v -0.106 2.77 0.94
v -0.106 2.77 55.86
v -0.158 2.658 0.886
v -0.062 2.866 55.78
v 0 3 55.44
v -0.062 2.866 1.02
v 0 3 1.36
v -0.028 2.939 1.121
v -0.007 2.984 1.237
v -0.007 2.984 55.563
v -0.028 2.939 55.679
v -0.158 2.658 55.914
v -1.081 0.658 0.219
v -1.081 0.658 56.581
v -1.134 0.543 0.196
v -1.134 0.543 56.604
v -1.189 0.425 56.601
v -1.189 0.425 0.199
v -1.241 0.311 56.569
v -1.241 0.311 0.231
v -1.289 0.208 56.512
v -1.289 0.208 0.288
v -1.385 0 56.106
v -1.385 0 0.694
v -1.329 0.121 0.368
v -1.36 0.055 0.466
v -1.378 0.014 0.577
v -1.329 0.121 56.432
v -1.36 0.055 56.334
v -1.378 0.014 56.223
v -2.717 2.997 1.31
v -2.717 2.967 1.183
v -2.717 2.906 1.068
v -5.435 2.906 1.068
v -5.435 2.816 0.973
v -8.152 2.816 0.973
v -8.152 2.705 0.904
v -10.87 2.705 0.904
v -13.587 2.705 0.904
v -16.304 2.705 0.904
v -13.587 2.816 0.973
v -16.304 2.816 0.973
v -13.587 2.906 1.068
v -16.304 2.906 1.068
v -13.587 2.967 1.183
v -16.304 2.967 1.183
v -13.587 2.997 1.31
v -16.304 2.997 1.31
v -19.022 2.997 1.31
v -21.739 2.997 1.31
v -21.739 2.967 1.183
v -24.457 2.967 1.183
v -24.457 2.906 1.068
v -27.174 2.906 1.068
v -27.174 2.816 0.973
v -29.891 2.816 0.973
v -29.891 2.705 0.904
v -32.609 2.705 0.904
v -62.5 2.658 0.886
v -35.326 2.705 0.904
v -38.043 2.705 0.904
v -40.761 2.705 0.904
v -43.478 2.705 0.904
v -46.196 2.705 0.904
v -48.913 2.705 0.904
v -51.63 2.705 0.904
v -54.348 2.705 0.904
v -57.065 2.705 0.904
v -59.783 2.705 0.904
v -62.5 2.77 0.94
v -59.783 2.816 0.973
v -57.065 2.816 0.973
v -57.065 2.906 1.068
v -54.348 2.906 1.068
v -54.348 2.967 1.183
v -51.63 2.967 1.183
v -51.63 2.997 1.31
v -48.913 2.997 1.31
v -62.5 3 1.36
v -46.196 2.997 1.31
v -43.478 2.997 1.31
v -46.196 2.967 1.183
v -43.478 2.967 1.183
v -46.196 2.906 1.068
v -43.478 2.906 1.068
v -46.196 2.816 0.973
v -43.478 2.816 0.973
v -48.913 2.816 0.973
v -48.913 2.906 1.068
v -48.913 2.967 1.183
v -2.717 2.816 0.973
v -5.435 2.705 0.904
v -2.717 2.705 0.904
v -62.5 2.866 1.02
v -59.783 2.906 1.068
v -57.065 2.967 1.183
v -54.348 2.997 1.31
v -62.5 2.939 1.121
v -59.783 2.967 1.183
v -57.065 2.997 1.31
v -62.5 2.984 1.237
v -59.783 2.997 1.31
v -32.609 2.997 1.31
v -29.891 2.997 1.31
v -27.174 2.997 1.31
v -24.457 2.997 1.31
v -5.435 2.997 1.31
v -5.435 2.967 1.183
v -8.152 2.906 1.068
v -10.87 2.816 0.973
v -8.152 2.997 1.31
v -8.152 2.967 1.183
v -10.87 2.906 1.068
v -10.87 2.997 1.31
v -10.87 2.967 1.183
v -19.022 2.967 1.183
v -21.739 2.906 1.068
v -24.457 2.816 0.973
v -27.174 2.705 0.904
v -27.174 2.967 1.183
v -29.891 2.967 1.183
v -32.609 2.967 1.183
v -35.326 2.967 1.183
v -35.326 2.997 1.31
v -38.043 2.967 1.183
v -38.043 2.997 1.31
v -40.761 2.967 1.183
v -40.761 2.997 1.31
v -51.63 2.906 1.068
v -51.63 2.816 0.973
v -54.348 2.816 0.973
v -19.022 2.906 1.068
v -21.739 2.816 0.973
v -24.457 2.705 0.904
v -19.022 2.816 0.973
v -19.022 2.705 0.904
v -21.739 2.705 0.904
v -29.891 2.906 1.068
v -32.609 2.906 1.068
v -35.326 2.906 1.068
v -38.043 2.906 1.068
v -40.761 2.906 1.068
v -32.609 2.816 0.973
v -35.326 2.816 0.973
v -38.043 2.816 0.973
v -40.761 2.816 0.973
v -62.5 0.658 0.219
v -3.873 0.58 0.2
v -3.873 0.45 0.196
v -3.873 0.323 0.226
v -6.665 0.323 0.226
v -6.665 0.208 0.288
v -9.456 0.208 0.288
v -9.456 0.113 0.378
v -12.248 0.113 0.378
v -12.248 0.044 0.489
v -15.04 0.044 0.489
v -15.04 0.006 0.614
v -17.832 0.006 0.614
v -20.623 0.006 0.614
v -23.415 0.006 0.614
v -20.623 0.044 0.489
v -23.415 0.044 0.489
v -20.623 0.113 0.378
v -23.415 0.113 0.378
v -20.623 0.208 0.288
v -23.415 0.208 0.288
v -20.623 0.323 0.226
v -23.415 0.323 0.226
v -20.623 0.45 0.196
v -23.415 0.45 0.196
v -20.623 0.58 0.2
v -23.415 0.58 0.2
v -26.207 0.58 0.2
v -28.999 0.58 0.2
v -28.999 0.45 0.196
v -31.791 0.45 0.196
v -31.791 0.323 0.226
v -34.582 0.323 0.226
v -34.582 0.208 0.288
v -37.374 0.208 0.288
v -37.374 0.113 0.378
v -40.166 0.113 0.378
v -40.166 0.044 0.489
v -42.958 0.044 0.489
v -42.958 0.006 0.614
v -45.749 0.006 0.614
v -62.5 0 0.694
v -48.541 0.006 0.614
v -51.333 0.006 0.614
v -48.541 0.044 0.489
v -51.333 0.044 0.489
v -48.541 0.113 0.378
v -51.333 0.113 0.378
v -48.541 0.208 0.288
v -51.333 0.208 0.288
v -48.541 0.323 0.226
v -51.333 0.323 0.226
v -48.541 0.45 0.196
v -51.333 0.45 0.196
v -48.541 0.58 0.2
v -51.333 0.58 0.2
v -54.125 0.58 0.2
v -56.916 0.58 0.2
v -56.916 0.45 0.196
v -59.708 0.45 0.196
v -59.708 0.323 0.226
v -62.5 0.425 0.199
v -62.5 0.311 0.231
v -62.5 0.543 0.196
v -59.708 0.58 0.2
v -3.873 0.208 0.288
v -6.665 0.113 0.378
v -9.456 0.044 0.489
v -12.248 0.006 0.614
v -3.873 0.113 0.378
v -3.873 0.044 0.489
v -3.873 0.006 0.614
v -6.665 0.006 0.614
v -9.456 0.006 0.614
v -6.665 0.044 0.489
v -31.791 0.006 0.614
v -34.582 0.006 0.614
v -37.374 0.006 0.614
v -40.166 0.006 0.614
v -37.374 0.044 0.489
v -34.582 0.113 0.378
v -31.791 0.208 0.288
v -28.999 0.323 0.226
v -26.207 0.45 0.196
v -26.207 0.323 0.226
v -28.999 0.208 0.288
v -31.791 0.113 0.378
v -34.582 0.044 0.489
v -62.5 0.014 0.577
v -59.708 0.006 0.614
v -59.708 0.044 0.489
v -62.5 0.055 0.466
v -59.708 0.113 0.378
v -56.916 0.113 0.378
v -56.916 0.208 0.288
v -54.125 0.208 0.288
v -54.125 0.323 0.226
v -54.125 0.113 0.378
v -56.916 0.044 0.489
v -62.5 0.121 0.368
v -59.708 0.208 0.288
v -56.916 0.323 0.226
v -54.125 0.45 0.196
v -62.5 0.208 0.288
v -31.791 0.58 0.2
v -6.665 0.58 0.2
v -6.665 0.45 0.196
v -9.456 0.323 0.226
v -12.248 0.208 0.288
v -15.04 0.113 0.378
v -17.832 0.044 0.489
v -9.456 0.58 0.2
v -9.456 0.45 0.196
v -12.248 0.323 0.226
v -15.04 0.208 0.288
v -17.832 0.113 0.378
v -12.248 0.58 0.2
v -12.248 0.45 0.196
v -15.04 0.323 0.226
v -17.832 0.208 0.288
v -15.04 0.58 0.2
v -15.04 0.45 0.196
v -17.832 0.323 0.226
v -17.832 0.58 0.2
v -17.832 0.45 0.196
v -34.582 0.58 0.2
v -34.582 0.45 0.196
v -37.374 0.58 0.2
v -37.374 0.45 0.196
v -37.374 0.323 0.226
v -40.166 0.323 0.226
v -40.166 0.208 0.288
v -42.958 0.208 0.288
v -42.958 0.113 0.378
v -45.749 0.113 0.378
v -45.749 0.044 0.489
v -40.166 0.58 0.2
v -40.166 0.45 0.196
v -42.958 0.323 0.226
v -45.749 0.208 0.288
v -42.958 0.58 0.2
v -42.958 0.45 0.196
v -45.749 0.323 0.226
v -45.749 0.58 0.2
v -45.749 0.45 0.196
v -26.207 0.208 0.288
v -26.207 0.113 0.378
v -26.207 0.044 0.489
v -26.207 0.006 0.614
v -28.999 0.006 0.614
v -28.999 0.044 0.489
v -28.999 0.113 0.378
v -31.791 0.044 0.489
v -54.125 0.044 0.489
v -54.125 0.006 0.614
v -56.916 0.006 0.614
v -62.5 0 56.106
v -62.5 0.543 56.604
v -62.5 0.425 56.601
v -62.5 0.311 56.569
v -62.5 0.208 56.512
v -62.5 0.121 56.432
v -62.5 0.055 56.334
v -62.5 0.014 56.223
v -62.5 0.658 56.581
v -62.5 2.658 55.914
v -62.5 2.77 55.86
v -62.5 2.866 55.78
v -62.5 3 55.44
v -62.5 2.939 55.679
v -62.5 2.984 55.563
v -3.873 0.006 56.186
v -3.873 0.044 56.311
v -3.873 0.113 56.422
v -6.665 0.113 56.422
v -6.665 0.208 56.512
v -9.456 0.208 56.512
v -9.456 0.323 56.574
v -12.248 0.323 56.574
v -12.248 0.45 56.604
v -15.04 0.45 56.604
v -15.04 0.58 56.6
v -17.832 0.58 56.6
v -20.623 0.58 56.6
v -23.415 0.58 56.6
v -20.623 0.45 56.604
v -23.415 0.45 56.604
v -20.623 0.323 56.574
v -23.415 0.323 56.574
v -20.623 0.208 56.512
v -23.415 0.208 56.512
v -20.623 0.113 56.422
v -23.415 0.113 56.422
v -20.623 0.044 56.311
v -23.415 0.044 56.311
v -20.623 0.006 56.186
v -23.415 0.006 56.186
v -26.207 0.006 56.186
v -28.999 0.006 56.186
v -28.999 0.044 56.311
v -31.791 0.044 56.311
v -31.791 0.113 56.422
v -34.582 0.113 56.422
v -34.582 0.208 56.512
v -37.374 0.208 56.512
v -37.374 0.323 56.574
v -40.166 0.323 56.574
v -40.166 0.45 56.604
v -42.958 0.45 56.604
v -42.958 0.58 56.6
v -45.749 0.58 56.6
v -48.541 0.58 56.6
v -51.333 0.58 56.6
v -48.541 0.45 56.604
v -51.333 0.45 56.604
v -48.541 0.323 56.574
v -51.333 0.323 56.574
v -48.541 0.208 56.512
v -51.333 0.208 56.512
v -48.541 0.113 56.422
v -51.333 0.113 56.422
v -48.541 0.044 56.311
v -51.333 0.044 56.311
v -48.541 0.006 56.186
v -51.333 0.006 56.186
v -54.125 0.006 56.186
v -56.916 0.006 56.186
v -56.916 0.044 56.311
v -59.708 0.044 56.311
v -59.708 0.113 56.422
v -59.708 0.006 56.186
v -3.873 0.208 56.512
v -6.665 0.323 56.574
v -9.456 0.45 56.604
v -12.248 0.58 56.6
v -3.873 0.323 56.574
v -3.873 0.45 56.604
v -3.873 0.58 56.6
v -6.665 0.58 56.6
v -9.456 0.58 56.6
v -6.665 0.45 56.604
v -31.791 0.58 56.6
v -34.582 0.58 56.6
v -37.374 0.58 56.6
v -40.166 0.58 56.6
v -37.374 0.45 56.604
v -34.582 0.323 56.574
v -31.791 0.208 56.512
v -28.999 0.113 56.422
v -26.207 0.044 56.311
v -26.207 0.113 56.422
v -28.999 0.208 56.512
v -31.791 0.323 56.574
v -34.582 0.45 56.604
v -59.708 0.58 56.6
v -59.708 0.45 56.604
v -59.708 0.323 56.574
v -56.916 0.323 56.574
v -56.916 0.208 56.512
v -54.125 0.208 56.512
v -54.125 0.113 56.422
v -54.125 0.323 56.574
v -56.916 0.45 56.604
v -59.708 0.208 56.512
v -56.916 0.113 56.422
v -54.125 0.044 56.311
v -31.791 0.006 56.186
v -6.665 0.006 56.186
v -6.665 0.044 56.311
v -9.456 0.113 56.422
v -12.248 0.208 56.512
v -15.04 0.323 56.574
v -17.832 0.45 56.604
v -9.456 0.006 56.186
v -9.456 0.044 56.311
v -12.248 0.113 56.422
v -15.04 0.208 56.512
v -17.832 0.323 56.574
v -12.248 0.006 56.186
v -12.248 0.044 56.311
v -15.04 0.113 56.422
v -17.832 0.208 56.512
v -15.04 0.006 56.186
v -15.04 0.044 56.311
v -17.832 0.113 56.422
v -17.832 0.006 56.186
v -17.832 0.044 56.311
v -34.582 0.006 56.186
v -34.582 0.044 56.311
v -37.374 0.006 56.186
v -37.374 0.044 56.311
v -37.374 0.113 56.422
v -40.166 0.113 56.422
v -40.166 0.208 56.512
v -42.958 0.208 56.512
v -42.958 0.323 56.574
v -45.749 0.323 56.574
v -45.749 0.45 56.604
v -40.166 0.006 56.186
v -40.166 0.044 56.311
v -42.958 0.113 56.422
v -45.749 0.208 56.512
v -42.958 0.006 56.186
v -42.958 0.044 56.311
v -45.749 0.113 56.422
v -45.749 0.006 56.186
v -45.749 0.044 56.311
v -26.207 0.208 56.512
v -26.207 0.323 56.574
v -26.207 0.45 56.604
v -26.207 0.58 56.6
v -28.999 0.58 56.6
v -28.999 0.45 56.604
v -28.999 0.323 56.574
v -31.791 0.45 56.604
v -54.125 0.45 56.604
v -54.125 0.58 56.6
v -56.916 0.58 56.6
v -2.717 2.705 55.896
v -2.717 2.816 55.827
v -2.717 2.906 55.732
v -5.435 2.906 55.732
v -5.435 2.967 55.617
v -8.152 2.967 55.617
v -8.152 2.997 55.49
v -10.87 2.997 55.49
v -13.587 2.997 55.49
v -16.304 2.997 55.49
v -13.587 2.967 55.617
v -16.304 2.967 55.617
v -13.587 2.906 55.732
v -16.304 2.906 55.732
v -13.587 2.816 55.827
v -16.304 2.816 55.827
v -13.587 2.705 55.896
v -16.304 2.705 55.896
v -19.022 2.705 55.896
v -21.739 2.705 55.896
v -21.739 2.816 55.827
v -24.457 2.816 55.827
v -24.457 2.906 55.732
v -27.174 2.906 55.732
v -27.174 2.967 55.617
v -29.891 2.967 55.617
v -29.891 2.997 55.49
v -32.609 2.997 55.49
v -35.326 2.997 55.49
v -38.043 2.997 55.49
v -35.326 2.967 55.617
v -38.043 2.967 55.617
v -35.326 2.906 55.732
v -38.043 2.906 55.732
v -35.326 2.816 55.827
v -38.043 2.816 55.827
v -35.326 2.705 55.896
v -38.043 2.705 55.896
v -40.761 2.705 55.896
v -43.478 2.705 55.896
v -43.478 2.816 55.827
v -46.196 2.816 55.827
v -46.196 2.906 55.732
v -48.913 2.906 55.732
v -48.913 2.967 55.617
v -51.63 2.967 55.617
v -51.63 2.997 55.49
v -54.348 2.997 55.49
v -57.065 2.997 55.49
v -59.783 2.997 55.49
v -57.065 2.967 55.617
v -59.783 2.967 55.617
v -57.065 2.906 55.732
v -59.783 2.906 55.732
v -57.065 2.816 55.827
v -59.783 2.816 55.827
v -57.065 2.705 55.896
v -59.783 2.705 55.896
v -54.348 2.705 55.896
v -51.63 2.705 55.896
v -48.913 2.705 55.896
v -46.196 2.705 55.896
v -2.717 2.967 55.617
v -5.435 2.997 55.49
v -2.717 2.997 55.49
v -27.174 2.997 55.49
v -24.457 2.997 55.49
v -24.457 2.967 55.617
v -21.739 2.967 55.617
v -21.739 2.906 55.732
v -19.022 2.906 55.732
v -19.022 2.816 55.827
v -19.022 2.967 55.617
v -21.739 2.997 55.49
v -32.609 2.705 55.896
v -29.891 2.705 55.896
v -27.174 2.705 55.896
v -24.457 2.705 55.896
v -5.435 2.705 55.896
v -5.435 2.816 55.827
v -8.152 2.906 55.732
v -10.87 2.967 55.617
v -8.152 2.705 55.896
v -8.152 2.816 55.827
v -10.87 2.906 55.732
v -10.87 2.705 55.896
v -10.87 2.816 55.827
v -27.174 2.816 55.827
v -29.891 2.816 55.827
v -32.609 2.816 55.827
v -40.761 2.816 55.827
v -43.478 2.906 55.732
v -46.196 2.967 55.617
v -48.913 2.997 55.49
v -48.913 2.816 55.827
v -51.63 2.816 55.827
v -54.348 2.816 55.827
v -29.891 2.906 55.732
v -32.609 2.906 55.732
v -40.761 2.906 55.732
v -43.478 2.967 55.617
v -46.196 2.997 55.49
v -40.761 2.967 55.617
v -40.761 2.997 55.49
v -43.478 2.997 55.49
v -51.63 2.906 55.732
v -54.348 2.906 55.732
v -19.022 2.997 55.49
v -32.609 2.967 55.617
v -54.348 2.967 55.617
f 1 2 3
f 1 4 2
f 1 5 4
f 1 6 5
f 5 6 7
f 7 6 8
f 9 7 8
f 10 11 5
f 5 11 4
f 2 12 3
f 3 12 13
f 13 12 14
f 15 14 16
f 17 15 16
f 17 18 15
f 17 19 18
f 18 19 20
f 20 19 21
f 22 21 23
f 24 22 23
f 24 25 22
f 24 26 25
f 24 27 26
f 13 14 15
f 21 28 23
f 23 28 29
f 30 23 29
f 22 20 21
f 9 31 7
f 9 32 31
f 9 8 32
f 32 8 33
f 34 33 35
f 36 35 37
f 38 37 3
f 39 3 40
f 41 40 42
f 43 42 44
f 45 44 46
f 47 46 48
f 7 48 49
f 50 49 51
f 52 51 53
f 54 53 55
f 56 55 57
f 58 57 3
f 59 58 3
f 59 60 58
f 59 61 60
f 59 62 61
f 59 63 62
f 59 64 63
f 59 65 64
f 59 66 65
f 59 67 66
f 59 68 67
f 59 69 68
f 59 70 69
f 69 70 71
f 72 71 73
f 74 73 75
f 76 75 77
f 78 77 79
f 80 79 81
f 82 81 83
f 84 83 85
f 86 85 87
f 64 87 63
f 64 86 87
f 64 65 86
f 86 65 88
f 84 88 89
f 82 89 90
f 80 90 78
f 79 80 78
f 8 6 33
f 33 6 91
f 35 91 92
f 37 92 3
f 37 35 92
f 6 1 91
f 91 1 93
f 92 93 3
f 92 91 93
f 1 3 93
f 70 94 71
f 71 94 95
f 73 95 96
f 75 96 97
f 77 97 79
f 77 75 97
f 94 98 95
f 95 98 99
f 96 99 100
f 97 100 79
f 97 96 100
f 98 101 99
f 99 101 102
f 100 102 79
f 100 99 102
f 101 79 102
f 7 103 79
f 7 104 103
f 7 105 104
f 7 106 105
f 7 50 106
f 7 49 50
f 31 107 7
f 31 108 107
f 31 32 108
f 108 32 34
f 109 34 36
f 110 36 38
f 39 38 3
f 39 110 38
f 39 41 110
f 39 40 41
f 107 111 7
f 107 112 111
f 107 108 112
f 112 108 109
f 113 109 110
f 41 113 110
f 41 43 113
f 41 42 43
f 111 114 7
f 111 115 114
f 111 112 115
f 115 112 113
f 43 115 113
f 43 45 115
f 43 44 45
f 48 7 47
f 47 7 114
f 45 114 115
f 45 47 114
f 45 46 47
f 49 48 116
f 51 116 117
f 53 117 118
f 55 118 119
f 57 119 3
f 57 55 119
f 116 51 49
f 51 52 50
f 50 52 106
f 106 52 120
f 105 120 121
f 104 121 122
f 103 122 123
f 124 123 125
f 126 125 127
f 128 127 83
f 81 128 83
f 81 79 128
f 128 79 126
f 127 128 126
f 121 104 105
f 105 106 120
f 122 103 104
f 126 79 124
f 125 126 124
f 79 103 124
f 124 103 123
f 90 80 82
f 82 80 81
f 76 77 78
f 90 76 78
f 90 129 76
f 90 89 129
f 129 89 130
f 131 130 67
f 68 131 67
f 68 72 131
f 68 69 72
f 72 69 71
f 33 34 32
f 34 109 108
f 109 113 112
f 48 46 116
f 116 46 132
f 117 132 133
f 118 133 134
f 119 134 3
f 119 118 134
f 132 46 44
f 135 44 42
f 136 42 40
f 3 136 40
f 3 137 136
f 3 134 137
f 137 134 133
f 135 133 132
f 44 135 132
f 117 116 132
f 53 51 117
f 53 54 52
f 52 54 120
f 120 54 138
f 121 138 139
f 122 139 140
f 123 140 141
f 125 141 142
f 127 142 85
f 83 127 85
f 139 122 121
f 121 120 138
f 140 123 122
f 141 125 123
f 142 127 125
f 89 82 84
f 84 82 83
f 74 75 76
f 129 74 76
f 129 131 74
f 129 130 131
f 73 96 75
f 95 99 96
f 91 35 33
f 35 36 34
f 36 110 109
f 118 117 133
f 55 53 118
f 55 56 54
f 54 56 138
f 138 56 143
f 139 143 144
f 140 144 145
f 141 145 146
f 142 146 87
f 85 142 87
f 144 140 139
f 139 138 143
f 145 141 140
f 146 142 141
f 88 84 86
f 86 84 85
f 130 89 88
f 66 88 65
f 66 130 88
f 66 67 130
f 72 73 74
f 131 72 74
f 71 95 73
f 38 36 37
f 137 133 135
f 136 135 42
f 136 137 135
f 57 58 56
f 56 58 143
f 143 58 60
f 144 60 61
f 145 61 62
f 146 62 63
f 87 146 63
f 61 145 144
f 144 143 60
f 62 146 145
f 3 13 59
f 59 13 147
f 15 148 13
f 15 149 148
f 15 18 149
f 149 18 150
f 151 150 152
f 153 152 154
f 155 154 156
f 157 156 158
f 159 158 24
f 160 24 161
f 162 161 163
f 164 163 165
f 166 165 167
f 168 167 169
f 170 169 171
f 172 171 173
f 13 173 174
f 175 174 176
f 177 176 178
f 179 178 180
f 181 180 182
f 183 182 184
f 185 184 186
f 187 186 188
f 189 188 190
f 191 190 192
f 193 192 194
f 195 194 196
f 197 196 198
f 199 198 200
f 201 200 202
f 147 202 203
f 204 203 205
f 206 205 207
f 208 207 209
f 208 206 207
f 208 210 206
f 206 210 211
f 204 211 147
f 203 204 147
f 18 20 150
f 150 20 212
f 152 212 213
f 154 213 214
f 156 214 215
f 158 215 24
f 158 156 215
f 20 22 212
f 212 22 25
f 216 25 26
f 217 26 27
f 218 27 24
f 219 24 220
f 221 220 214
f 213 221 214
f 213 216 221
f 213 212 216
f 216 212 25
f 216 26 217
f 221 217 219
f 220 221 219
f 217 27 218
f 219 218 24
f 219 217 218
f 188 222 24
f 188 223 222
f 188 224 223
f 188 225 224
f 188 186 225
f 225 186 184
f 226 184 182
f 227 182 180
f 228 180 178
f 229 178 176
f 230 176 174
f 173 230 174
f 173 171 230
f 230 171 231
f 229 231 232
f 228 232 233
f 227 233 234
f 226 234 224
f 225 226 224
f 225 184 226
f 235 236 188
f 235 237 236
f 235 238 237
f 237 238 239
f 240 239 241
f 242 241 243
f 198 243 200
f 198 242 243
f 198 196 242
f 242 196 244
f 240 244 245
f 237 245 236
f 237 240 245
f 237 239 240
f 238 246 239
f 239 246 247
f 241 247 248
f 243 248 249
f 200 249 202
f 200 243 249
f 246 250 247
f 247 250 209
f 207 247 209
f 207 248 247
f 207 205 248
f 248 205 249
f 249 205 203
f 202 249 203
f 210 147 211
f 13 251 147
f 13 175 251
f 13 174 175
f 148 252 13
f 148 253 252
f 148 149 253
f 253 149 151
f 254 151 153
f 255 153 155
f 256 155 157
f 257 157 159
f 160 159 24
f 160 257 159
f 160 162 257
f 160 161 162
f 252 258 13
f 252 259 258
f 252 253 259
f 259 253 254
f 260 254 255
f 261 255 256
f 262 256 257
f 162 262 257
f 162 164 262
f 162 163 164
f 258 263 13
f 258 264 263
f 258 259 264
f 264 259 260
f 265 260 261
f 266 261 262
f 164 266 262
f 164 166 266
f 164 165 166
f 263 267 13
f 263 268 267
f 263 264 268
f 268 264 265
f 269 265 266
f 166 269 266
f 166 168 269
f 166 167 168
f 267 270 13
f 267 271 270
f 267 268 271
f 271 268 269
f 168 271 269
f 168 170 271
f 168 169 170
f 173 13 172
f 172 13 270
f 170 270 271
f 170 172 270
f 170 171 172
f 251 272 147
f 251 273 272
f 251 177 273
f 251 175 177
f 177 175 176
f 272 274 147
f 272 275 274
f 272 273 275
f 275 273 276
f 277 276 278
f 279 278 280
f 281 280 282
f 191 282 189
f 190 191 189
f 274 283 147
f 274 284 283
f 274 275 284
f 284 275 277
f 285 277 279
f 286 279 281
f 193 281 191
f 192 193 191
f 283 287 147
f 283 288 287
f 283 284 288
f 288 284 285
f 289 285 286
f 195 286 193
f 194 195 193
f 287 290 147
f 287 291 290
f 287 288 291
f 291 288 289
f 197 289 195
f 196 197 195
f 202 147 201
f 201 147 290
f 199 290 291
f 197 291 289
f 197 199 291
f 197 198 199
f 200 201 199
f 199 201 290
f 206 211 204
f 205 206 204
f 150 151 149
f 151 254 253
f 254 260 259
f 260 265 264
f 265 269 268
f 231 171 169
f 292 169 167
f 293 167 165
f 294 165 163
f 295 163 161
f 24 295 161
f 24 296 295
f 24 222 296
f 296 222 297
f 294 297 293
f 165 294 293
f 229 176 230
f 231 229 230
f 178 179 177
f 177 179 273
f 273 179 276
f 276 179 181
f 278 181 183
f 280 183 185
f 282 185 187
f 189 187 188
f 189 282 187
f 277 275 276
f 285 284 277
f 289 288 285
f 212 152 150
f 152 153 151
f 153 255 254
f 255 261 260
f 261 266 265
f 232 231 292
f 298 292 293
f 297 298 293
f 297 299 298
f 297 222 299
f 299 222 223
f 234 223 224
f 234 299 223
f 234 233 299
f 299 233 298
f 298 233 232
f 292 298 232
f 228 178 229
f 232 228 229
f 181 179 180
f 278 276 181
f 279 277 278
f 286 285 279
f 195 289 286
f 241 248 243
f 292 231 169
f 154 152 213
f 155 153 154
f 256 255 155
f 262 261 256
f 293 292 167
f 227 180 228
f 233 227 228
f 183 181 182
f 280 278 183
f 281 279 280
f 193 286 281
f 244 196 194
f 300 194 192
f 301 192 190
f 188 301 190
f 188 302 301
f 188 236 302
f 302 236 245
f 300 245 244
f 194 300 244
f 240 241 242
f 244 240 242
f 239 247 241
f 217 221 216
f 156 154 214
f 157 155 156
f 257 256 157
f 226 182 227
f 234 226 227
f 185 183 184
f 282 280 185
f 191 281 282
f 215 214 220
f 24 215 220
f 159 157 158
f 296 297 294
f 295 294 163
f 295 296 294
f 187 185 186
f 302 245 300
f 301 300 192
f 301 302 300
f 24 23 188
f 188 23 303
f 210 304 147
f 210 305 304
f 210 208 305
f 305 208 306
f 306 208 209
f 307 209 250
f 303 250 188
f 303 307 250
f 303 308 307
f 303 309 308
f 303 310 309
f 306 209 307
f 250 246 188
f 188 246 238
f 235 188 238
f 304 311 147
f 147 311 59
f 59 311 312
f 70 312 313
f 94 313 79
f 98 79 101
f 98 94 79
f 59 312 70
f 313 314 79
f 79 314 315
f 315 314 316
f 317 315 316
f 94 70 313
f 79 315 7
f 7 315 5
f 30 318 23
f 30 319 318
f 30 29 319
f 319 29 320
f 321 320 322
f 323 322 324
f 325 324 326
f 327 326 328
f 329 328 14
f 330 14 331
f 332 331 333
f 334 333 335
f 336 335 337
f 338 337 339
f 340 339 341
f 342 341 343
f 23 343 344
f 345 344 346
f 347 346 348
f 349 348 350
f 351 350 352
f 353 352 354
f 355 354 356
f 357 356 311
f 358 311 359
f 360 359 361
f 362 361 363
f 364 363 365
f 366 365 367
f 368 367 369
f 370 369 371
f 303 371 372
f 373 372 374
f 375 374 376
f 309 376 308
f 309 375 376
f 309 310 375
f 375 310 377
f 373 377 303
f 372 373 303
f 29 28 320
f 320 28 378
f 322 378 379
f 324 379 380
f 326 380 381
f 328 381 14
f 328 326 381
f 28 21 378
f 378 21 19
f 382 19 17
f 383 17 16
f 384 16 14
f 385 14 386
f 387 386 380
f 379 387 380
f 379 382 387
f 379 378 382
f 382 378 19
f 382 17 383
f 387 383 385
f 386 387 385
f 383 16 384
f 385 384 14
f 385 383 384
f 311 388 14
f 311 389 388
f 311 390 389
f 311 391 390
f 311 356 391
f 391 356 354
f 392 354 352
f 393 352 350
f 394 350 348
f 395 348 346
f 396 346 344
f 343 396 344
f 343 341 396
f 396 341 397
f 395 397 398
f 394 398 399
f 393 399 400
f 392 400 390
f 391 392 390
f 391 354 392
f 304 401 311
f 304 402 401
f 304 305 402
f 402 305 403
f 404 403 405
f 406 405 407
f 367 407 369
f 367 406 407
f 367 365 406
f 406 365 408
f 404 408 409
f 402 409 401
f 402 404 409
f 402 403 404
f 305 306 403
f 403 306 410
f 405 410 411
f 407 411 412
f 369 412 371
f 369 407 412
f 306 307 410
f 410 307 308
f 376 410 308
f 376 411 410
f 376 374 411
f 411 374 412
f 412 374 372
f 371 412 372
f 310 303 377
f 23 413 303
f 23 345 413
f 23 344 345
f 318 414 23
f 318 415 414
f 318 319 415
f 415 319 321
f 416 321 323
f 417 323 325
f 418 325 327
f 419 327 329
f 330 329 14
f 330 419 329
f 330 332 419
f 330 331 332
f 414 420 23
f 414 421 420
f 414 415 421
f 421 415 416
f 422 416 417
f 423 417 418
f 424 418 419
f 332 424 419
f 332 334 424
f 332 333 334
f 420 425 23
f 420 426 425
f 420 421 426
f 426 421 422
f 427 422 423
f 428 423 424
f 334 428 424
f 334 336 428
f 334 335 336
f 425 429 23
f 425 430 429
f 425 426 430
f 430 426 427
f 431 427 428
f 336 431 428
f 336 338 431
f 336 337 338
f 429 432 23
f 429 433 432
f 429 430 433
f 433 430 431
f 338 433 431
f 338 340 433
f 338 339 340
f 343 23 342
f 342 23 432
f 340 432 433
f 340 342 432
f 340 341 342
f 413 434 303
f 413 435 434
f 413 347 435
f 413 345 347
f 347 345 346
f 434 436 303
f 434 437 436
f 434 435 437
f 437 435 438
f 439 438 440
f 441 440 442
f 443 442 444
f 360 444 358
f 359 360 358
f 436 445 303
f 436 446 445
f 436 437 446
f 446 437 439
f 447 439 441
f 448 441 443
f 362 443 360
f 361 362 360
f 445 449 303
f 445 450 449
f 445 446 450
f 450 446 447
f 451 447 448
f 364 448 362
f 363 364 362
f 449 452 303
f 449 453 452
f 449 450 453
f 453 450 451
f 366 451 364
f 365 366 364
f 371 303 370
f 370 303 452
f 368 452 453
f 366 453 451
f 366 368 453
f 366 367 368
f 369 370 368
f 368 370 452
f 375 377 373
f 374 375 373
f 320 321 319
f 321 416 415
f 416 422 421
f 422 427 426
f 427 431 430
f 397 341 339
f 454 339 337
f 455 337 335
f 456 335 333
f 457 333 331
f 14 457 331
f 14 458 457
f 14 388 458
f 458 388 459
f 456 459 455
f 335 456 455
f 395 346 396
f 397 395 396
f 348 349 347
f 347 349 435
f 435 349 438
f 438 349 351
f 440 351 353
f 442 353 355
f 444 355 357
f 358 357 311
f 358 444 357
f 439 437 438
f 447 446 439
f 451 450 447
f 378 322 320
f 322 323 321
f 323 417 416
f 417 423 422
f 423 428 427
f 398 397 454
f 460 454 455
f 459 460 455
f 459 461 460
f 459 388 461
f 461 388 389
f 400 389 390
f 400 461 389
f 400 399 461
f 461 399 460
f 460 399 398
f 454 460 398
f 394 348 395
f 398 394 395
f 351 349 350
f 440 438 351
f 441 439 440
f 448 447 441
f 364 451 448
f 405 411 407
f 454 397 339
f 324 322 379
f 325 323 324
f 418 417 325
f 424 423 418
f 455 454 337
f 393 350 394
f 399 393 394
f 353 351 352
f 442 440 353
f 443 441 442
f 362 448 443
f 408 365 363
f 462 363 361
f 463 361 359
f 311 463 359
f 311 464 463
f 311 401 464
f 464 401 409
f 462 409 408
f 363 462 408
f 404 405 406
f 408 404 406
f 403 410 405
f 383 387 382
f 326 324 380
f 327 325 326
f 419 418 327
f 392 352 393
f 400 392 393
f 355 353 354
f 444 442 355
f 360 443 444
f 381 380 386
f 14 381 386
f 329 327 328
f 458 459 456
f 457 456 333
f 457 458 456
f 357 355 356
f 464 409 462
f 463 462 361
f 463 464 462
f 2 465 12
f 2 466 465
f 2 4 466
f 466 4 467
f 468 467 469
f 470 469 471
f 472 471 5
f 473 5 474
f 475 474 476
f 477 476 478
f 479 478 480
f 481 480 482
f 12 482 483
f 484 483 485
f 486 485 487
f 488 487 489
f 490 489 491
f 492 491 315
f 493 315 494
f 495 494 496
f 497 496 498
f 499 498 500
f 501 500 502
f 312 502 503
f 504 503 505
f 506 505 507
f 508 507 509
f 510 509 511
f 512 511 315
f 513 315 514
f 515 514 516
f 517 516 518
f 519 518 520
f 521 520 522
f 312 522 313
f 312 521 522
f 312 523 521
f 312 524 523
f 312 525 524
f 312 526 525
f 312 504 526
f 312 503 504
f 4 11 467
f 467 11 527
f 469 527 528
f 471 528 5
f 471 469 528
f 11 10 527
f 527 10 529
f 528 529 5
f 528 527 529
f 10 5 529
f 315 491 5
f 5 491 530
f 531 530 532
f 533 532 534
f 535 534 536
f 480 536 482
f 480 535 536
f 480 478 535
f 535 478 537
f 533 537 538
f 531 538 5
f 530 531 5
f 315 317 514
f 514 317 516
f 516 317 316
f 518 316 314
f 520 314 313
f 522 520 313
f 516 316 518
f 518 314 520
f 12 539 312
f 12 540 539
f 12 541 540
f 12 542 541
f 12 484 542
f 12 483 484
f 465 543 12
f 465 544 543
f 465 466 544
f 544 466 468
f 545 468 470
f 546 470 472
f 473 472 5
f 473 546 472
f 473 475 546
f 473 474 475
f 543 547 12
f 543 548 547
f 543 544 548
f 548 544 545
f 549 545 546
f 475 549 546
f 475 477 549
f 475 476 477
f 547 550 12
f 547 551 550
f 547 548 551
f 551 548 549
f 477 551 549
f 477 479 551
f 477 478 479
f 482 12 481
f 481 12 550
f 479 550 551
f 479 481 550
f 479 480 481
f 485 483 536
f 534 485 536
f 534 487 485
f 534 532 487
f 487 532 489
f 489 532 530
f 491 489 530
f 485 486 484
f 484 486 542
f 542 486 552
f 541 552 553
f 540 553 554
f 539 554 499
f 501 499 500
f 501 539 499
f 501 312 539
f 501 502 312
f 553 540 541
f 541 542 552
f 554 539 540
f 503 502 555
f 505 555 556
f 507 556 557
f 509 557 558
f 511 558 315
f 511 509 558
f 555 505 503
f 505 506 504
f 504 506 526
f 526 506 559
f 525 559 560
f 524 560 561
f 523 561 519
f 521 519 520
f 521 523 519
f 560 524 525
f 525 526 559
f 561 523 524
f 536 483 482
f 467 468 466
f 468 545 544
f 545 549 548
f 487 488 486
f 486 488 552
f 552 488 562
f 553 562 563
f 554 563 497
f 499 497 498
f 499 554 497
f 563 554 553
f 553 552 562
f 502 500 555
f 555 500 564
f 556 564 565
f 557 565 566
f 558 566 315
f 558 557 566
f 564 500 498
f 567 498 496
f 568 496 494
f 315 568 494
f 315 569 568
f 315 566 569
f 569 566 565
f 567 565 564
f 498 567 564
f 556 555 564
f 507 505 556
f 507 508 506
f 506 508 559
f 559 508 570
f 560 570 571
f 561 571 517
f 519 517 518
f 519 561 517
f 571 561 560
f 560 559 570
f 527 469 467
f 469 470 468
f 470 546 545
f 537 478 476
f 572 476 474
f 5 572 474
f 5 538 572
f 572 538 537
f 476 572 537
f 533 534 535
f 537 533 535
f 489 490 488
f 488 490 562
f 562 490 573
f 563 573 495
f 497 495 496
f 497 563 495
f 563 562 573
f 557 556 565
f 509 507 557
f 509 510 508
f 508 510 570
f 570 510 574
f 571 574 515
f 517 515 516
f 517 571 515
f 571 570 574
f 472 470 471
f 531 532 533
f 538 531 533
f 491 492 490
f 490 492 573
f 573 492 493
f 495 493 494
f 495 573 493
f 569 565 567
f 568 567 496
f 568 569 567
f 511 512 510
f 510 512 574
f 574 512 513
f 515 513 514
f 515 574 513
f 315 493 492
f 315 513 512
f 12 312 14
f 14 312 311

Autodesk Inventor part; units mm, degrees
ref_plane "YZ Plane" through (0, 0, 0) normal (1, 0, 0) x (0, 1, 0)
ref_plane "XZ Plane" through (0, 0, 0) normal (0, 1, 0) x (-1, 0, 0)
sketch "Sketch1" plane through (0, 0, 0) normal (0, 1, 0) x (-1, 0, 0)
  line L0 (0, 0) -> (62.5, 0)
  line L1 (62.5, 0) -> (62.5, 56.8)
  line L2 (62.5, 56.8) -> (0, 56.8)
  line L3 (0, 56.8) -> (0, 0)
  dimension "d7" = 62.5
  dimension "d8" = 56.8
extrude "Extrusion1" add sketch "Sketch1" along normal blind 3
sketch "Sketch2" plane through (0, 0, 56.8) normal (1, 0, 0) x (0, 0, -1)
  line L0 (56.8, 0) -> (56.8, 3) projected
  line L1 (0, 3) -> (56.8, 3) projected
  line L2 (0, 0) -> (0, 3) projected
  line L3 (0, 0) -> (1, 3)
  line L4 (56.8, 0) -> (55.8, 3)
  dimension "d2" = 1
  dimension "d3" = 1
extrude "Extrusion2" cut sketch "Sketch2" against normal through all
fillet "Fillet1" radius 0.5 4 edges at (-31.25, 3, 55.8) (-31.25, 0, 56.8) (-31.25, 3, 1) (-31.25, 0, 0)
ref_plane "Work Plane1" through (0, 3, 28.4) normal (0, 0, -1) x (-1, 0, 0)
sketch "Sketch3" plane through (0, 3, 28.4) normal (0, 0, -1) x (-1, 0, 0)
  line L0 (62.5, 0) -> (62.5, -3) projected
  line L1 (62.5, -3) -> (0, -3) projected
  line L2 (0, -3) -> (0, 0) projected
  line L3 (0, 0) -> (62.5, 0) projected
  line L4 (0, 0) -> (1.3849, -3)
  dimension "d12" = 65.22
extrude "Extrusion3" cut sketch "Sketch3" along normal through all both and the other way through all contours L4 L1 L2
properties part number "Tapa batería"
